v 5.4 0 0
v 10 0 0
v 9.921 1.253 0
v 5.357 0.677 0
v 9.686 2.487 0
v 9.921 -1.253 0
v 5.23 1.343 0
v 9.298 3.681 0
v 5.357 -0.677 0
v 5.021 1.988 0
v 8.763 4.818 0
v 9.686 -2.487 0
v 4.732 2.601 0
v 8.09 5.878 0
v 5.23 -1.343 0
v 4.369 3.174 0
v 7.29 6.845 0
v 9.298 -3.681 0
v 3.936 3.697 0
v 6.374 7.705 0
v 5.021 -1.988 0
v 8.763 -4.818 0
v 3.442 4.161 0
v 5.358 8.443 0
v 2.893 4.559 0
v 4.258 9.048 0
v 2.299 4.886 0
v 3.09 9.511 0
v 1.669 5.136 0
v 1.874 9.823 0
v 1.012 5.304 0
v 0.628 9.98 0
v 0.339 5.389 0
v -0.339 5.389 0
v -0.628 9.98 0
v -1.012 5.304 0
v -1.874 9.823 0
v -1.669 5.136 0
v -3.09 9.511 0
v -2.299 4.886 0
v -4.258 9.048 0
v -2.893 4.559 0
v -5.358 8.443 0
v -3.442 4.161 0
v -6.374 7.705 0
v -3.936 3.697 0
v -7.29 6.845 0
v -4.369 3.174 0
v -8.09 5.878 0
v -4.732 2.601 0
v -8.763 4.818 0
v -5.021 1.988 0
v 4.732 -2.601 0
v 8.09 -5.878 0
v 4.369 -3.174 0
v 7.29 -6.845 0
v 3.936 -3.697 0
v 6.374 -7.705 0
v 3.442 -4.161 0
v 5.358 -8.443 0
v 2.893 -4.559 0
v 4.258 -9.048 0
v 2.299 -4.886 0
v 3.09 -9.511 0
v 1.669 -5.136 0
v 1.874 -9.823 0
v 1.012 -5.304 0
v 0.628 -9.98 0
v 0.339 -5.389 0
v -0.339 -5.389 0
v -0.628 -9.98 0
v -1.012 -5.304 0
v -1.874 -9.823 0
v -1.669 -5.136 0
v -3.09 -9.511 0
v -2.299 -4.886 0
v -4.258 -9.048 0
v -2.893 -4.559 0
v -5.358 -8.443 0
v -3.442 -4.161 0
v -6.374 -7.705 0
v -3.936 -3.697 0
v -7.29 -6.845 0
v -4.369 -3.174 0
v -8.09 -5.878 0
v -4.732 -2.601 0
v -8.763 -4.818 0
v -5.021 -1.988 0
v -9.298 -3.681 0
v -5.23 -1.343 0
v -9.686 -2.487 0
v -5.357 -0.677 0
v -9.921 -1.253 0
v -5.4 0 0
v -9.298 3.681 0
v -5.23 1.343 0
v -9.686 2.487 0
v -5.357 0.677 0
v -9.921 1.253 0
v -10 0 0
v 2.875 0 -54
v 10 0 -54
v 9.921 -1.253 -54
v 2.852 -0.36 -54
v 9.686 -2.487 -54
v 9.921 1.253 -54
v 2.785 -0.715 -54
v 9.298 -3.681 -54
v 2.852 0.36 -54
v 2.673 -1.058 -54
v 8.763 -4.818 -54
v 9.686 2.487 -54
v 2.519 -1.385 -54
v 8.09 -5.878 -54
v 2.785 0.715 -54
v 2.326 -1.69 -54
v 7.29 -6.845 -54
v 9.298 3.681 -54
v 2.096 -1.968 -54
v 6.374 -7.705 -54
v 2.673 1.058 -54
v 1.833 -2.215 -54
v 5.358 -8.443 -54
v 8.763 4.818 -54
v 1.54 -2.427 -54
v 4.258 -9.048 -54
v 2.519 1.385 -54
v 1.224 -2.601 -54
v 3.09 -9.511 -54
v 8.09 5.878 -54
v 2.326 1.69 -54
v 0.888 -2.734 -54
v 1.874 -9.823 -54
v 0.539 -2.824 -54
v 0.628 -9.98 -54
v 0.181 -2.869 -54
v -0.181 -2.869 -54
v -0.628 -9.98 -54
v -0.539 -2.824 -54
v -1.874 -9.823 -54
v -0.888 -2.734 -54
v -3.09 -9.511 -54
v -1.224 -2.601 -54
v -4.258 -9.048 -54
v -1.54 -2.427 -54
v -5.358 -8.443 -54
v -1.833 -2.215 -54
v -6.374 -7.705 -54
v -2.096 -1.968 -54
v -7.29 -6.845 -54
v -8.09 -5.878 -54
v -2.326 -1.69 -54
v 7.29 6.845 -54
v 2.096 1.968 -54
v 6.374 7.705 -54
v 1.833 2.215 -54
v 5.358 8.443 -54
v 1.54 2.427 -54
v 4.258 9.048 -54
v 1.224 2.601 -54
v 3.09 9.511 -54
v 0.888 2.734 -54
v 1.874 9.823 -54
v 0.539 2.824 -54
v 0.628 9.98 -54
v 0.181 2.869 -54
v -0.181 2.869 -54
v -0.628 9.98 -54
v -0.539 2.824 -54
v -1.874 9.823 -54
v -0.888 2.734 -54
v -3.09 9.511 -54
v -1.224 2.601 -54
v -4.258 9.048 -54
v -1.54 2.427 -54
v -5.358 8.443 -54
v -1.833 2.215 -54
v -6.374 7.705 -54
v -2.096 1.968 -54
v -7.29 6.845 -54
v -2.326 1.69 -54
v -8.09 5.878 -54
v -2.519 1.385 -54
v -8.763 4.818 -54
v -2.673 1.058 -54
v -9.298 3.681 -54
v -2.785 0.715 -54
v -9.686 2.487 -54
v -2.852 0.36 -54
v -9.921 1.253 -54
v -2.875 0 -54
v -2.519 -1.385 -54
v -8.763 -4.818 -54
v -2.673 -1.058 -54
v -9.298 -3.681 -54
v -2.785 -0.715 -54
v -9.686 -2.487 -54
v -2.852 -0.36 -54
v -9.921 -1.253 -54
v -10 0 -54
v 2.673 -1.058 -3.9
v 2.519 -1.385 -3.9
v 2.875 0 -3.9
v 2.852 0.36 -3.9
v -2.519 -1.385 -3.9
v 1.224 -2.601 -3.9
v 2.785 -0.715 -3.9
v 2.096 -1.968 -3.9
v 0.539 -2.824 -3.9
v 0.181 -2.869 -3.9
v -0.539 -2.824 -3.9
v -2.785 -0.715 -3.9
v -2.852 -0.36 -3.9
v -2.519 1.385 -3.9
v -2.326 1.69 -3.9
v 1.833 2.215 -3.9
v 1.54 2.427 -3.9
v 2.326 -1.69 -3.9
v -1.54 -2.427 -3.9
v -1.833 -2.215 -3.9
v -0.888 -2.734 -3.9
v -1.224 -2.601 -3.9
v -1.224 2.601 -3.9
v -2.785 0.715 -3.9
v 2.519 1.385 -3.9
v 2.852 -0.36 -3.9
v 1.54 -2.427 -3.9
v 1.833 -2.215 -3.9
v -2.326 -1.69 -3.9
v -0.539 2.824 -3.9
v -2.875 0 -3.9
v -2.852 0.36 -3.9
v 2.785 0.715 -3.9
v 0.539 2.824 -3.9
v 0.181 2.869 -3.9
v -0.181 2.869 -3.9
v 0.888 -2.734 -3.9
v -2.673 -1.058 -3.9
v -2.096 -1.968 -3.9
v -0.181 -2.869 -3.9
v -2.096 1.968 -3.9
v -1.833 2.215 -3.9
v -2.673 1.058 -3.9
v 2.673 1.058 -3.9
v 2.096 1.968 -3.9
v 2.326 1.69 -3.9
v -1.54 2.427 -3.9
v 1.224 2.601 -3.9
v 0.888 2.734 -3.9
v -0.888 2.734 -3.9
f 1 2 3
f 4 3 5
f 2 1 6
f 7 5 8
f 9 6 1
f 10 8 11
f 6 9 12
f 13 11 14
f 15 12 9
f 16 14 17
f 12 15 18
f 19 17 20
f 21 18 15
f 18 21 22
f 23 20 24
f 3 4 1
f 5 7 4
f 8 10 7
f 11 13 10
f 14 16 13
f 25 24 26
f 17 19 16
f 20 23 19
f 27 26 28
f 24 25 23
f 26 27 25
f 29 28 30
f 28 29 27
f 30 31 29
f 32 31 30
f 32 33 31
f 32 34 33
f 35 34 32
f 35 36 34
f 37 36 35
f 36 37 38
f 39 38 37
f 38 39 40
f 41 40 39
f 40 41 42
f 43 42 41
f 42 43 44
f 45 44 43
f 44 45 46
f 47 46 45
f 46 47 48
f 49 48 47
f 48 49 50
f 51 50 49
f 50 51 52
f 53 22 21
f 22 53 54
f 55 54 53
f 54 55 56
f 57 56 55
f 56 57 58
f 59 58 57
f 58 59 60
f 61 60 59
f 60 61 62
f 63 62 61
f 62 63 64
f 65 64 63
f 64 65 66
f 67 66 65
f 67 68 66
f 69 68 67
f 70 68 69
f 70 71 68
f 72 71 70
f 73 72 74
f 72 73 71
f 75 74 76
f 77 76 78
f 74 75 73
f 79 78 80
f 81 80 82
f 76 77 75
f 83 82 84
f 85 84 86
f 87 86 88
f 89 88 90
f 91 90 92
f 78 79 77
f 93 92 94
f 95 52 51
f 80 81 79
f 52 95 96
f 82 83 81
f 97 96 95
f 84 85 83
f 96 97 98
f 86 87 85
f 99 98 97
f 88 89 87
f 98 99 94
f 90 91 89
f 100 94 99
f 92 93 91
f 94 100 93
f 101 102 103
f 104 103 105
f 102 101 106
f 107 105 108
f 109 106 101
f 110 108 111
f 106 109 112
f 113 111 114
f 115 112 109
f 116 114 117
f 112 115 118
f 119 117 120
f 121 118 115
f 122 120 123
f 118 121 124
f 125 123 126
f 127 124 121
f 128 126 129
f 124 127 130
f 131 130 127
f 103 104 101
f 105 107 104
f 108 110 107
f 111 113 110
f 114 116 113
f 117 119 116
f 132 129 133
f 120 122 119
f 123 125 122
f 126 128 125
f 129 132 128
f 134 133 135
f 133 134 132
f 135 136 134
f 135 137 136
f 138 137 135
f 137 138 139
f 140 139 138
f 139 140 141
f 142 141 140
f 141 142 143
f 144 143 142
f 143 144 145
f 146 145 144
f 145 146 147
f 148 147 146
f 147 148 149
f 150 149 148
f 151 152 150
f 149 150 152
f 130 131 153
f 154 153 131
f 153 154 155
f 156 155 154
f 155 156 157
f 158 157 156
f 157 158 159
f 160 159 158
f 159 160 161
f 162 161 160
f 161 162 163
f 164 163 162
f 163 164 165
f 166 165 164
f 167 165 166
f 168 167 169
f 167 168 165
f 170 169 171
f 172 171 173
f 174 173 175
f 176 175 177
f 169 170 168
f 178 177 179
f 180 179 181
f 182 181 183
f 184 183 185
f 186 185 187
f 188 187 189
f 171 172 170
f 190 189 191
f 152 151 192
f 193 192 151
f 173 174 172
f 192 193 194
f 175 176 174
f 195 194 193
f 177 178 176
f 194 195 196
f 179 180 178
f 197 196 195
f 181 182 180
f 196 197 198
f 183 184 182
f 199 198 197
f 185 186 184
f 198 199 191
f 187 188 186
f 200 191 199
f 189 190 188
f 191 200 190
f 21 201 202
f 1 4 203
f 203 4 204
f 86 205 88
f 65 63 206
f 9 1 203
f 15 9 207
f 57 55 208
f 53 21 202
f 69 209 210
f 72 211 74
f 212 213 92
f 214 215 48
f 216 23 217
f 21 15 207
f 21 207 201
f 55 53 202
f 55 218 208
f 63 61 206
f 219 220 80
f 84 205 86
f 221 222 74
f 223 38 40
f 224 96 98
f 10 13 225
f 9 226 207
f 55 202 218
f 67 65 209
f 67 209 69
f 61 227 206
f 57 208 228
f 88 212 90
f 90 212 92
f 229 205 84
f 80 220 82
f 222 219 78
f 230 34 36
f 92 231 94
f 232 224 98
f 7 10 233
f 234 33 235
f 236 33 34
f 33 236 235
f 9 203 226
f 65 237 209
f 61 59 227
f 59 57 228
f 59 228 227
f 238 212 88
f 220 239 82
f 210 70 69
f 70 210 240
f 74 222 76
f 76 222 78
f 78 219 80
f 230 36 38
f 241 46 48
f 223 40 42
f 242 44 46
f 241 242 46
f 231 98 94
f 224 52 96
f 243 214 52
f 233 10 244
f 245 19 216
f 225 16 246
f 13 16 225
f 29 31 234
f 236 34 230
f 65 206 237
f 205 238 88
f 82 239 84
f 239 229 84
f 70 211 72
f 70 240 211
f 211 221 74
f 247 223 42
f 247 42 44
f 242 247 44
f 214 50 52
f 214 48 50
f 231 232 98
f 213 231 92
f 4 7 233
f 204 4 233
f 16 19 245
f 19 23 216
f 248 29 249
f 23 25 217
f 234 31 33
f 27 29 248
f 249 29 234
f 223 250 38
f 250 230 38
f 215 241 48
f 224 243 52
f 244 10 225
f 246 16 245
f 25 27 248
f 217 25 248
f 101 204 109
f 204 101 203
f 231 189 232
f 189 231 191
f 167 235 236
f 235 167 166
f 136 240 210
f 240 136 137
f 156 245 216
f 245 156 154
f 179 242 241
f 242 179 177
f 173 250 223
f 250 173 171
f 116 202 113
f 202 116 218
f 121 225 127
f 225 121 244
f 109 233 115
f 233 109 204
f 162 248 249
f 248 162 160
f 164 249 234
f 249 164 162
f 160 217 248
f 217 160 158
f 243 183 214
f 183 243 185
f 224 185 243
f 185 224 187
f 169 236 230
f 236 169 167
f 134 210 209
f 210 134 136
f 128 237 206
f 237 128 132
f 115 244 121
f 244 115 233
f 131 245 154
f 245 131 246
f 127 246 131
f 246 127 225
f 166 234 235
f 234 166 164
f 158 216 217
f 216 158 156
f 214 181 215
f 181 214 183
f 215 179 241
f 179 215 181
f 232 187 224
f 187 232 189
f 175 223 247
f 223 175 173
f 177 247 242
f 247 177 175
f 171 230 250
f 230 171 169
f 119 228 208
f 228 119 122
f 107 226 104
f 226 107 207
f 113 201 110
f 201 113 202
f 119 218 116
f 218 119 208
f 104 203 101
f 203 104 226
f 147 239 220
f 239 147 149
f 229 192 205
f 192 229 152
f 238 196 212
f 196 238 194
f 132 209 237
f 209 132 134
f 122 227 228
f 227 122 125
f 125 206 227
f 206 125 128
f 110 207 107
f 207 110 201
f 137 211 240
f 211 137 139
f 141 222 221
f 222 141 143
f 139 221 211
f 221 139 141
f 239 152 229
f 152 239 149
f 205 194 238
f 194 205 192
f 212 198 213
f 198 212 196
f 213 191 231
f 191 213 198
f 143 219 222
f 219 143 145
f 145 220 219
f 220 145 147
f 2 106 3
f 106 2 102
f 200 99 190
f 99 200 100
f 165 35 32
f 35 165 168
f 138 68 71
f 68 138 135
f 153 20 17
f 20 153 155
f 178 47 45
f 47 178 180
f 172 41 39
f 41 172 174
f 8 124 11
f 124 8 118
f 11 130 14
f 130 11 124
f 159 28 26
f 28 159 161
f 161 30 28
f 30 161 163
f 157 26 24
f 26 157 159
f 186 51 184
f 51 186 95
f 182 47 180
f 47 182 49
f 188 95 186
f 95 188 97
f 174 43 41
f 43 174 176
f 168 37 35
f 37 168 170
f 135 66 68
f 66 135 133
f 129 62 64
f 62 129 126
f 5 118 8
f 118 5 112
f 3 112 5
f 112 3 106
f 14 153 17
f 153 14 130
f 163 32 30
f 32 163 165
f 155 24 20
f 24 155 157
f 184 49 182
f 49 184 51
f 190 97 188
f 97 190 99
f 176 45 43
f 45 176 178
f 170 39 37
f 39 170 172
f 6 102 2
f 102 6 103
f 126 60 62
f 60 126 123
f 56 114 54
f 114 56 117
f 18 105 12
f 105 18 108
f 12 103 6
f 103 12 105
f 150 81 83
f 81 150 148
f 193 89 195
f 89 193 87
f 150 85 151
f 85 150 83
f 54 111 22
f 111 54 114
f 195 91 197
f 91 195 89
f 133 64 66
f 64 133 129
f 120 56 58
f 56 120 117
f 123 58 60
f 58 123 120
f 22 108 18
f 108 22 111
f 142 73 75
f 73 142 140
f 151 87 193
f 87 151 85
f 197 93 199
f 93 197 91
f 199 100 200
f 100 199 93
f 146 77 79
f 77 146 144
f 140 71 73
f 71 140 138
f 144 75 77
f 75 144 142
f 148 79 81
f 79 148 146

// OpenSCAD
$fn = 50;


difference() {
	union() {
		translate(v = [0, 0, -54.0000000000]) {
			cylinder(h = 54, r = 10.0000000000);
		}
		cylinder(h = 0, r = 16.0000000000);
	}
	union() {
		translate(v = [0, 0, 0]) {
			rotate(a = [0, 0, 0]) {
				difference() {
					union() {
						#translate(v = [0, 0, -54.0000000000]) {
							cylinder(h = 54, r = 2.6000000000);
						}
						#translate(v = [0, 0, -3.9000000000]) {
							cylinder(h = 3.9000000000, r1 = 2.8750000000, r2 = 5.4000000000);
						}
						#translate(v = [0, 0, -54.0000000000]) {
							cylinder(h = 54, r = 2.8750000000);
						}
						#translate(v = [0, 0, -54.0000000000]) {
							cylinder(h = 54, r = 2.6000000000);
						}
					}
					union();
				}
			}
		}
	}
}
